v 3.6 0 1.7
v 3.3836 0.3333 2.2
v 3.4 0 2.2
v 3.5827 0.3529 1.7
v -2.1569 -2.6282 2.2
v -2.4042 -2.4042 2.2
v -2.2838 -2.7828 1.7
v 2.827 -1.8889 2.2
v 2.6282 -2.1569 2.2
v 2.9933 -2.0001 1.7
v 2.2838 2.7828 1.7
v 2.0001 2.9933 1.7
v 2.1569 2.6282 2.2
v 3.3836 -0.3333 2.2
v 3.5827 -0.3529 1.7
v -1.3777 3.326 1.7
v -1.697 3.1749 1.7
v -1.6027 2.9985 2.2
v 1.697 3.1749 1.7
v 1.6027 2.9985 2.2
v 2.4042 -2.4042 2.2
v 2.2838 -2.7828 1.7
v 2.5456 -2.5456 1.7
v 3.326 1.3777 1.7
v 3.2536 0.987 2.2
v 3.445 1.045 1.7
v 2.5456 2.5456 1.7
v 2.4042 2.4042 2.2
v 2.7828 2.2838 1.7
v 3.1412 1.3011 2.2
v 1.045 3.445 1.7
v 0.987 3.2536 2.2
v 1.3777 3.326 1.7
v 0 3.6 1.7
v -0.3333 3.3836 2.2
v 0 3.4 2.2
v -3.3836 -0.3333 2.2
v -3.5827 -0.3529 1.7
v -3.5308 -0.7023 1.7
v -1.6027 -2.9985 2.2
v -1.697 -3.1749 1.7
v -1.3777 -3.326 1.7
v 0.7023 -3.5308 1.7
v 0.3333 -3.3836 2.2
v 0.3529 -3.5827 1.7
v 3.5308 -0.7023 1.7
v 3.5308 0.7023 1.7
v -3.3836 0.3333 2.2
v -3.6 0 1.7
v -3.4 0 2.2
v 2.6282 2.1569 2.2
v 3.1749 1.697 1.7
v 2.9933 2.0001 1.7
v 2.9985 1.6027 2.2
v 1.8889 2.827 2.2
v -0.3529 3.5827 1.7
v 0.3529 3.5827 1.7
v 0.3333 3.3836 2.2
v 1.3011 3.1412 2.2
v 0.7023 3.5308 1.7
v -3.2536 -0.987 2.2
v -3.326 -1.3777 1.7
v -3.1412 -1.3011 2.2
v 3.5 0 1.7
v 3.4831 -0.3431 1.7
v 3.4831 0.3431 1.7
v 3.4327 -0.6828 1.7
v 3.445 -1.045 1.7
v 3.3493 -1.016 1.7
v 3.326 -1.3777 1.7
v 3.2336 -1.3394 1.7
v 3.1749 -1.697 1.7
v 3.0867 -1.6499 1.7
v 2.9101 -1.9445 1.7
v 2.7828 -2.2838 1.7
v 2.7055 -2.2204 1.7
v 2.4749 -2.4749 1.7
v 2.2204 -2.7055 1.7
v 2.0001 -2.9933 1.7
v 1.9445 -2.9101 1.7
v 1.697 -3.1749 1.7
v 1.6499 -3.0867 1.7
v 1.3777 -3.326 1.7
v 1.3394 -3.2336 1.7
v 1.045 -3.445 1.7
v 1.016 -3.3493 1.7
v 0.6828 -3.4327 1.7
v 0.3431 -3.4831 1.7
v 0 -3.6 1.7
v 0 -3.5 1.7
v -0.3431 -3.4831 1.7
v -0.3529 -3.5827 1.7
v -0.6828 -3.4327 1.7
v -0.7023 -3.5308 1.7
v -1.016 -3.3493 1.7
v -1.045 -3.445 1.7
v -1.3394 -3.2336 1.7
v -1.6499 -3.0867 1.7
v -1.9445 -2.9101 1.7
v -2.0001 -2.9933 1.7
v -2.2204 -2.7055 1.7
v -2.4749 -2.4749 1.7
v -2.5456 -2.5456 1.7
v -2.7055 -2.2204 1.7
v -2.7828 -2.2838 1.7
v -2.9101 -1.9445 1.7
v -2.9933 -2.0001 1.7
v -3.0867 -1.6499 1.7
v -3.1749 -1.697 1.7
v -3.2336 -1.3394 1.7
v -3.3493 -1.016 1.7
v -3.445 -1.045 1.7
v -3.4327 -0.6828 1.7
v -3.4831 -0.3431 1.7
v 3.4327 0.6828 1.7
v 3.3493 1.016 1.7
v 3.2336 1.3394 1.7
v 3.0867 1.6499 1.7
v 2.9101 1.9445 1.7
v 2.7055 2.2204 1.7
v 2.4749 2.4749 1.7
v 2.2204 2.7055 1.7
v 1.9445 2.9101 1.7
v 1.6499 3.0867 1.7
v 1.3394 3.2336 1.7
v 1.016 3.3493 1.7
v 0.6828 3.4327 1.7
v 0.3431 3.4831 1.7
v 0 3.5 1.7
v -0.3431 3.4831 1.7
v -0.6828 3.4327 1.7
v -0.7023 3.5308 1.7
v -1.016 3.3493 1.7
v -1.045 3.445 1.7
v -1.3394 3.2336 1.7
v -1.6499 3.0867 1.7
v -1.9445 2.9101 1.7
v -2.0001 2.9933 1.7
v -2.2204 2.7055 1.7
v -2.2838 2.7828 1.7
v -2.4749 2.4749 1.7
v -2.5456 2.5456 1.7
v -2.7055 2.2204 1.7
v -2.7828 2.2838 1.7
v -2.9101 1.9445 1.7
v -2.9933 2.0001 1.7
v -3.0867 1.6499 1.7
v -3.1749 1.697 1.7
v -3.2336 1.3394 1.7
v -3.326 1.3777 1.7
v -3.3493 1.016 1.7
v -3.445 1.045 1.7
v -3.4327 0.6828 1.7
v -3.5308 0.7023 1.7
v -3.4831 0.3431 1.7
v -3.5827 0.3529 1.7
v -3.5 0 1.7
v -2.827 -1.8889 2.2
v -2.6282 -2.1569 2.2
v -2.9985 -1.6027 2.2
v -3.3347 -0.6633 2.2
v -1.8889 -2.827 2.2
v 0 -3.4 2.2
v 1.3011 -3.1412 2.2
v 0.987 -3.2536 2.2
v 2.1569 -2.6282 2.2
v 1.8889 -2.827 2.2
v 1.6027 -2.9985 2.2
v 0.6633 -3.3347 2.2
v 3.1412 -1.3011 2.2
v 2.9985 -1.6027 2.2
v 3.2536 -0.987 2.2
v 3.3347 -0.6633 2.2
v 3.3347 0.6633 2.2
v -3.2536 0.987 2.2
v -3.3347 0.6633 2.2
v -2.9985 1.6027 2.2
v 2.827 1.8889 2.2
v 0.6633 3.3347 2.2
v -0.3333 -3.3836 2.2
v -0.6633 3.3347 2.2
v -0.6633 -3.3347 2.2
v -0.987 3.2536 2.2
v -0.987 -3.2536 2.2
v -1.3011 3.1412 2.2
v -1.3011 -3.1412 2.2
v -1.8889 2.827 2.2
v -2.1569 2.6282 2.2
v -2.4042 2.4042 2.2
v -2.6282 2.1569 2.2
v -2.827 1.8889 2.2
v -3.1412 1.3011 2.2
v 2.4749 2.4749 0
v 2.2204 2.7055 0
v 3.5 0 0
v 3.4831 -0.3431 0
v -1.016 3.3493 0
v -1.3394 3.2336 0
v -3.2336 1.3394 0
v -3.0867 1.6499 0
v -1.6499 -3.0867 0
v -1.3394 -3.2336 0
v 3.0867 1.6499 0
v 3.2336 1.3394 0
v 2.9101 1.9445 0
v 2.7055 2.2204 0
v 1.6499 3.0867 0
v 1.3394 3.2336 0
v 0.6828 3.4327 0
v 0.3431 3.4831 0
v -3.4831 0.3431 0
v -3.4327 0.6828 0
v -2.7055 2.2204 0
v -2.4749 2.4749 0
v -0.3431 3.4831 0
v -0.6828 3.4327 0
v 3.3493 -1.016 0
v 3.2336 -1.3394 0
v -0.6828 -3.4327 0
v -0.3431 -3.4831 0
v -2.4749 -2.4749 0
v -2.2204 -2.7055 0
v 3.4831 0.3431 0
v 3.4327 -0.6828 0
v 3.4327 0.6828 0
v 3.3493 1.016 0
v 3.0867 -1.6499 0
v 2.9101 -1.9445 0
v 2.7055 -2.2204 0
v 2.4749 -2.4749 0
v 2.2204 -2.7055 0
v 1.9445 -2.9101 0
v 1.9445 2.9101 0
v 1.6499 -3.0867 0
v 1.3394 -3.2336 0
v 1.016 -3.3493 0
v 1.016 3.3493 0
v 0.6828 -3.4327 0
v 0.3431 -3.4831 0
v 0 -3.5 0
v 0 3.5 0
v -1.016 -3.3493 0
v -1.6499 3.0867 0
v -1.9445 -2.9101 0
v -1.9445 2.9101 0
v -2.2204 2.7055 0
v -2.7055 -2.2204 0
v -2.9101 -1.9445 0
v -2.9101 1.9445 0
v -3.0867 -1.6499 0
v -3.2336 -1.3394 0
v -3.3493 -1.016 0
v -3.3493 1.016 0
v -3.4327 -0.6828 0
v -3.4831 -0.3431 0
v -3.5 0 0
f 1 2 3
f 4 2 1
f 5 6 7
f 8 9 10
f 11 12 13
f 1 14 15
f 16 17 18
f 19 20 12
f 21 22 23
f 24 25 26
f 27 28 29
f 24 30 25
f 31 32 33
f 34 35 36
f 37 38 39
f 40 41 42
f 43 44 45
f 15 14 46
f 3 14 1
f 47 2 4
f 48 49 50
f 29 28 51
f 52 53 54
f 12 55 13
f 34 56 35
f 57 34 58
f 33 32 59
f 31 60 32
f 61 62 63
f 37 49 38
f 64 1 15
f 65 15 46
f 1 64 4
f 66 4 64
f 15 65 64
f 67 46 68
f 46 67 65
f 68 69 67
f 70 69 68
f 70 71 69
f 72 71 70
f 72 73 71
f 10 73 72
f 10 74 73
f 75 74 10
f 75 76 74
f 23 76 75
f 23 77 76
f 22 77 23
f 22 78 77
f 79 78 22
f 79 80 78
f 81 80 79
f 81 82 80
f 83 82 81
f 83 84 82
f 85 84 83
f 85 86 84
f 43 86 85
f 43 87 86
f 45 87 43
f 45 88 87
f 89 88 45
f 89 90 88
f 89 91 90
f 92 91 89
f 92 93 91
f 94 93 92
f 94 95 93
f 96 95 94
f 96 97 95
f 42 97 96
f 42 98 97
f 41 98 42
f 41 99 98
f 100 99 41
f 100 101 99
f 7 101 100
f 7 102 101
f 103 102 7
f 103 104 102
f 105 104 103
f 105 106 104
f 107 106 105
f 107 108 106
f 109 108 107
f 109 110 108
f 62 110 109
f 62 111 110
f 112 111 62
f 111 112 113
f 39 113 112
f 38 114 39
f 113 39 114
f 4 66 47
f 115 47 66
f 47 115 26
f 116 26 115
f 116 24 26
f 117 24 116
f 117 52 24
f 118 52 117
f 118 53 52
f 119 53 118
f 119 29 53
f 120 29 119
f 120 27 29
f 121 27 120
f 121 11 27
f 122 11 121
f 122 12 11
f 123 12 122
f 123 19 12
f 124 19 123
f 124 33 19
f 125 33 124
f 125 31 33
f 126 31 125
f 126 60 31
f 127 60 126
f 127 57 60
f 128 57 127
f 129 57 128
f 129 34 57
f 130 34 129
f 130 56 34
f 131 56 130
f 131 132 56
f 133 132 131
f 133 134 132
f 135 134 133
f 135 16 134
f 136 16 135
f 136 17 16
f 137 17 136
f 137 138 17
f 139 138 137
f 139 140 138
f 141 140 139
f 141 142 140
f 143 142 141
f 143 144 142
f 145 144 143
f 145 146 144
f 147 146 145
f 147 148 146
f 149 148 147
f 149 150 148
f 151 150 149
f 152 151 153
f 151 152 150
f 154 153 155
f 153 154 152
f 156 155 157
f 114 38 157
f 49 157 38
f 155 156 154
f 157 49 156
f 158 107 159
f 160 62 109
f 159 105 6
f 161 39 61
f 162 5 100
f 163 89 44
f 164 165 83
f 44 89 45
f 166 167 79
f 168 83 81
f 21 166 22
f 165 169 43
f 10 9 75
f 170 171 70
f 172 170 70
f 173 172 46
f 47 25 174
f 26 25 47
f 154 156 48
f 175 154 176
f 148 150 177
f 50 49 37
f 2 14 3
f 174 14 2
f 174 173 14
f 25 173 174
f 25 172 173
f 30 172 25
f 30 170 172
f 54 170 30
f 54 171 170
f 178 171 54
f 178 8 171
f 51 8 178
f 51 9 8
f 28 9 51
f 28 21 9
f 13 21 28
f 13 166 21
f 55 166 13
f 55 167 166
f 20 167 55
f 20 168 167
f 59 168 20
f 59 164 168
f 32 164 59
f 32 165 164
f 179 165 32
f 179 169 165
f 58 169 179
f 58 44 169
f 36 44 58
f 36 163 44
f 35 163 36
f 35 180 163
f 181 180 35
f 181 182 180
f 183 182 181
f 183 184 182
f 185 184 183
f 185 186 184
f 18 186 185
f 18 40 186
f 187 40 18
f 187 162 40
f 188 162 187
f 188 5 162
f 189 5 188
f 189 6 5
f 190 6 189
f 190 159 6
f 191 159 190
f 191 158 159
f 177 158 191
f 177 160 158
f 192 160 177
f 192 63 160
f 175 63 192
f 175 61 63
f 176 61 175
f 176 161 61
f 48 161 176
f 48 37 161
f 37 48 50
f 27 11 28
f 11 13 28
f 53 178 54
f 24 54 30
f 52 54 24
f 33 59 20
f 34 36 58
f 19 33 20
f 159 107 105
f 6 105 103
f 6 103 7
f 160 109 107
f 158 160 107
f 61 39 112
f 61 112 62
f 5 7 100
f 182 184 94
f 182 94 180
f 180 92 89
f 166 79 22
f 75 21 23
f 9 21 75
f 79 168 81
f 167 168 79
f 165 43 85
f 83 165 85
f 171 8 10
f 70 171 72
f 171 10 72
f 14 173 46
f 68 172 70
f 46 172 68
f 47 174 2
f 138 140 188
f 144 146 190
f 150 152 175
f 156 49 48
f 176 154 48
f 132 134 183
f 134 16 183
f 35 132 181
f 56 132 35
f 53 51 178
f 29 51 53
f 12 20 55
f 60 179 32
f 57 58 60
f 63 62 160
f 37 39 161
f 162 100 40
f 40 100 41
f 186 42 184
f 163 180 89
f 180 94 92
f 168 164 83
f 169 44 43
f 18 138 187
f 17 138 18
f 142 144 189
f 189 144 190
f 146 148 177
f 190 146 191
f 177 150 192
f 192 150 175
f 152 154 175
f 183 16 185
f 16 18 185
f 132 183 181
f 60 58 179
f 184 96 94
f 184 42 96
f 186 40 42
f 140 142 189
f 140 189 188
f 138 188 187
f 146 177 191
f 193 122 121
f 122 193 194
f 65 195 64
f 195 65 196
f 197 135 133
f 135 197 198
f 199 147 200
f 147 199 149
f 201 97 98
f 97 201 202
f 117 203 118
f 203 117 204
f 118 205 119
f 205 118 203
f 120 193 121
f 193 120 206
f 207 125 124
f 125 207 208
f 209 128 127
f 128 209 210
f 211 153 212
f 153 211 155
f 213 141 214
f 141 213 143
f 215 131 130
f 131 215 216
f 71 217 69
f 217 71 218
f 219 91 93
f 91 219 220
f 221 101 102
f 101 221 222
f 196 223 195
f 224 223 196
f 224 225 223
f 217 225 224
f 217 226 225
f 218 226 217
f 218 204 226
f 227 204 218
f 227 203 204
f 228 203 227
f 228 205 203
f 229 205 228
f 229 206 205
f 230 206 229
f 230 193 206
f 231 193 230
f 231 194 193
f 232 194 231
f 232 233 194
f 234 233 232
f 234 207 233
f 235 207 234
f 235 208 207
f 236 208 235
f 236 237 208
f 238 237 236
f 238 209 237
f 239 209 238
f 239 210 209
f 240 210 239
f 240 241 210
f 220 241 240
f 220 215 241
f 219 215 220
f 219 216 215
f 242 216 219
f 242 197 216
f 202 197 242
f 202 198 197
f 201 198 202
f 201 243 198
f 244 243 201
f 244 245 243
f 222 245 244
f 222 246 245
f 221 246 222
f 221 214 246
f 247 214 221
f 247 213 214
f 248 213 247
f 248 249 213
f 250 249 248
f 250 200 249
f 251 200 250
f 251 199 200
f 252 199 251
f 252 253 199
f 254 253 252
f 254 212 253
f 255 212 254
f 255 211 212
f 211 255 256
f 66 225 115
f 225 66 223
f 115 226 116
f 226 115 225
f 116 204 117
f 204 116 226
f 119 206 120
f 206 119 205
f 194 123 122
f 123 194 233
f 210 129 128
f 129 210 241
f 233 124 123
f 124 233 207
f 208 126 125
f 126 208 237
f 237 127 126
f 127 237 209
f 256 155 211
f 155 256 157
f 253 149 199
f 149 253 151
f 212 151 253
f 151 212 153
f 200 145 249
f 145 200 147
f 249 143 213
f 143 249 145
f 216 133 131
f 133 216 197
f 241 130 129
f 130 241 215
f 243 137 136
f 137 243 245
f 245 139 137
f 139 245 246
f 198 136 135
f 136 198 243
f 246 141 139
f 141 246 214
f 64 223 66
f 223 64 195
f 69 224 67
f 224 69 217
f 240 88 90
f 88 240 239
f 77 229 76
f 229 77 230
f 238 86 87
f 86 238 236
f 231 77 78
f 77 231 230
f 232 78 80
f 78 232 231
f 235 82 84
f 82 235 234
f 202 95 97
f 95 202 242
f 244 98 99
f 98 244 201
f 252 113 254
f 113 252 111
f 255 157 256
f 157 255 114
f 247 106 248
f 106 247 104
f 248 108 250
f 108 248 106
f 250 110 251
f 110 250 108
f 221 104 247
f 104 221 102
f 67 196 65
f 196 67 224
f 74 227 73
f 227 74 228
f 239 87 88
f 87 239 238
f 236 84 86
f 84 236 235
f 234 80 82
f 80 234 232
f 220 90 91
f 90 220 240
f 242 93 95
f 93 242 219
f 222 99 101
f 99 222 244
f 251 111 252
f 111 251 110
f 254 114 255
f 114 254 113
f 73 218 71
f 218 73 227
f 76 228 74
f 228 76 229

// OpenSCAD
//Created by Oleg Skidan RC6OF (ex UR3IQO)
//
//Visit https://github.com/UR3IQO/CW_Paddle for more information
//
//This project is distributed under Creative Commons Attribution 4.0 International
//See the LICENSE file for the details

$fn = 64;

translate([0, 0, 1.7]) cylinder(0.5, 7.2/2, 6.8/2);
translate([0, 0, 0]) cylinder(1.7, d = 7);   
